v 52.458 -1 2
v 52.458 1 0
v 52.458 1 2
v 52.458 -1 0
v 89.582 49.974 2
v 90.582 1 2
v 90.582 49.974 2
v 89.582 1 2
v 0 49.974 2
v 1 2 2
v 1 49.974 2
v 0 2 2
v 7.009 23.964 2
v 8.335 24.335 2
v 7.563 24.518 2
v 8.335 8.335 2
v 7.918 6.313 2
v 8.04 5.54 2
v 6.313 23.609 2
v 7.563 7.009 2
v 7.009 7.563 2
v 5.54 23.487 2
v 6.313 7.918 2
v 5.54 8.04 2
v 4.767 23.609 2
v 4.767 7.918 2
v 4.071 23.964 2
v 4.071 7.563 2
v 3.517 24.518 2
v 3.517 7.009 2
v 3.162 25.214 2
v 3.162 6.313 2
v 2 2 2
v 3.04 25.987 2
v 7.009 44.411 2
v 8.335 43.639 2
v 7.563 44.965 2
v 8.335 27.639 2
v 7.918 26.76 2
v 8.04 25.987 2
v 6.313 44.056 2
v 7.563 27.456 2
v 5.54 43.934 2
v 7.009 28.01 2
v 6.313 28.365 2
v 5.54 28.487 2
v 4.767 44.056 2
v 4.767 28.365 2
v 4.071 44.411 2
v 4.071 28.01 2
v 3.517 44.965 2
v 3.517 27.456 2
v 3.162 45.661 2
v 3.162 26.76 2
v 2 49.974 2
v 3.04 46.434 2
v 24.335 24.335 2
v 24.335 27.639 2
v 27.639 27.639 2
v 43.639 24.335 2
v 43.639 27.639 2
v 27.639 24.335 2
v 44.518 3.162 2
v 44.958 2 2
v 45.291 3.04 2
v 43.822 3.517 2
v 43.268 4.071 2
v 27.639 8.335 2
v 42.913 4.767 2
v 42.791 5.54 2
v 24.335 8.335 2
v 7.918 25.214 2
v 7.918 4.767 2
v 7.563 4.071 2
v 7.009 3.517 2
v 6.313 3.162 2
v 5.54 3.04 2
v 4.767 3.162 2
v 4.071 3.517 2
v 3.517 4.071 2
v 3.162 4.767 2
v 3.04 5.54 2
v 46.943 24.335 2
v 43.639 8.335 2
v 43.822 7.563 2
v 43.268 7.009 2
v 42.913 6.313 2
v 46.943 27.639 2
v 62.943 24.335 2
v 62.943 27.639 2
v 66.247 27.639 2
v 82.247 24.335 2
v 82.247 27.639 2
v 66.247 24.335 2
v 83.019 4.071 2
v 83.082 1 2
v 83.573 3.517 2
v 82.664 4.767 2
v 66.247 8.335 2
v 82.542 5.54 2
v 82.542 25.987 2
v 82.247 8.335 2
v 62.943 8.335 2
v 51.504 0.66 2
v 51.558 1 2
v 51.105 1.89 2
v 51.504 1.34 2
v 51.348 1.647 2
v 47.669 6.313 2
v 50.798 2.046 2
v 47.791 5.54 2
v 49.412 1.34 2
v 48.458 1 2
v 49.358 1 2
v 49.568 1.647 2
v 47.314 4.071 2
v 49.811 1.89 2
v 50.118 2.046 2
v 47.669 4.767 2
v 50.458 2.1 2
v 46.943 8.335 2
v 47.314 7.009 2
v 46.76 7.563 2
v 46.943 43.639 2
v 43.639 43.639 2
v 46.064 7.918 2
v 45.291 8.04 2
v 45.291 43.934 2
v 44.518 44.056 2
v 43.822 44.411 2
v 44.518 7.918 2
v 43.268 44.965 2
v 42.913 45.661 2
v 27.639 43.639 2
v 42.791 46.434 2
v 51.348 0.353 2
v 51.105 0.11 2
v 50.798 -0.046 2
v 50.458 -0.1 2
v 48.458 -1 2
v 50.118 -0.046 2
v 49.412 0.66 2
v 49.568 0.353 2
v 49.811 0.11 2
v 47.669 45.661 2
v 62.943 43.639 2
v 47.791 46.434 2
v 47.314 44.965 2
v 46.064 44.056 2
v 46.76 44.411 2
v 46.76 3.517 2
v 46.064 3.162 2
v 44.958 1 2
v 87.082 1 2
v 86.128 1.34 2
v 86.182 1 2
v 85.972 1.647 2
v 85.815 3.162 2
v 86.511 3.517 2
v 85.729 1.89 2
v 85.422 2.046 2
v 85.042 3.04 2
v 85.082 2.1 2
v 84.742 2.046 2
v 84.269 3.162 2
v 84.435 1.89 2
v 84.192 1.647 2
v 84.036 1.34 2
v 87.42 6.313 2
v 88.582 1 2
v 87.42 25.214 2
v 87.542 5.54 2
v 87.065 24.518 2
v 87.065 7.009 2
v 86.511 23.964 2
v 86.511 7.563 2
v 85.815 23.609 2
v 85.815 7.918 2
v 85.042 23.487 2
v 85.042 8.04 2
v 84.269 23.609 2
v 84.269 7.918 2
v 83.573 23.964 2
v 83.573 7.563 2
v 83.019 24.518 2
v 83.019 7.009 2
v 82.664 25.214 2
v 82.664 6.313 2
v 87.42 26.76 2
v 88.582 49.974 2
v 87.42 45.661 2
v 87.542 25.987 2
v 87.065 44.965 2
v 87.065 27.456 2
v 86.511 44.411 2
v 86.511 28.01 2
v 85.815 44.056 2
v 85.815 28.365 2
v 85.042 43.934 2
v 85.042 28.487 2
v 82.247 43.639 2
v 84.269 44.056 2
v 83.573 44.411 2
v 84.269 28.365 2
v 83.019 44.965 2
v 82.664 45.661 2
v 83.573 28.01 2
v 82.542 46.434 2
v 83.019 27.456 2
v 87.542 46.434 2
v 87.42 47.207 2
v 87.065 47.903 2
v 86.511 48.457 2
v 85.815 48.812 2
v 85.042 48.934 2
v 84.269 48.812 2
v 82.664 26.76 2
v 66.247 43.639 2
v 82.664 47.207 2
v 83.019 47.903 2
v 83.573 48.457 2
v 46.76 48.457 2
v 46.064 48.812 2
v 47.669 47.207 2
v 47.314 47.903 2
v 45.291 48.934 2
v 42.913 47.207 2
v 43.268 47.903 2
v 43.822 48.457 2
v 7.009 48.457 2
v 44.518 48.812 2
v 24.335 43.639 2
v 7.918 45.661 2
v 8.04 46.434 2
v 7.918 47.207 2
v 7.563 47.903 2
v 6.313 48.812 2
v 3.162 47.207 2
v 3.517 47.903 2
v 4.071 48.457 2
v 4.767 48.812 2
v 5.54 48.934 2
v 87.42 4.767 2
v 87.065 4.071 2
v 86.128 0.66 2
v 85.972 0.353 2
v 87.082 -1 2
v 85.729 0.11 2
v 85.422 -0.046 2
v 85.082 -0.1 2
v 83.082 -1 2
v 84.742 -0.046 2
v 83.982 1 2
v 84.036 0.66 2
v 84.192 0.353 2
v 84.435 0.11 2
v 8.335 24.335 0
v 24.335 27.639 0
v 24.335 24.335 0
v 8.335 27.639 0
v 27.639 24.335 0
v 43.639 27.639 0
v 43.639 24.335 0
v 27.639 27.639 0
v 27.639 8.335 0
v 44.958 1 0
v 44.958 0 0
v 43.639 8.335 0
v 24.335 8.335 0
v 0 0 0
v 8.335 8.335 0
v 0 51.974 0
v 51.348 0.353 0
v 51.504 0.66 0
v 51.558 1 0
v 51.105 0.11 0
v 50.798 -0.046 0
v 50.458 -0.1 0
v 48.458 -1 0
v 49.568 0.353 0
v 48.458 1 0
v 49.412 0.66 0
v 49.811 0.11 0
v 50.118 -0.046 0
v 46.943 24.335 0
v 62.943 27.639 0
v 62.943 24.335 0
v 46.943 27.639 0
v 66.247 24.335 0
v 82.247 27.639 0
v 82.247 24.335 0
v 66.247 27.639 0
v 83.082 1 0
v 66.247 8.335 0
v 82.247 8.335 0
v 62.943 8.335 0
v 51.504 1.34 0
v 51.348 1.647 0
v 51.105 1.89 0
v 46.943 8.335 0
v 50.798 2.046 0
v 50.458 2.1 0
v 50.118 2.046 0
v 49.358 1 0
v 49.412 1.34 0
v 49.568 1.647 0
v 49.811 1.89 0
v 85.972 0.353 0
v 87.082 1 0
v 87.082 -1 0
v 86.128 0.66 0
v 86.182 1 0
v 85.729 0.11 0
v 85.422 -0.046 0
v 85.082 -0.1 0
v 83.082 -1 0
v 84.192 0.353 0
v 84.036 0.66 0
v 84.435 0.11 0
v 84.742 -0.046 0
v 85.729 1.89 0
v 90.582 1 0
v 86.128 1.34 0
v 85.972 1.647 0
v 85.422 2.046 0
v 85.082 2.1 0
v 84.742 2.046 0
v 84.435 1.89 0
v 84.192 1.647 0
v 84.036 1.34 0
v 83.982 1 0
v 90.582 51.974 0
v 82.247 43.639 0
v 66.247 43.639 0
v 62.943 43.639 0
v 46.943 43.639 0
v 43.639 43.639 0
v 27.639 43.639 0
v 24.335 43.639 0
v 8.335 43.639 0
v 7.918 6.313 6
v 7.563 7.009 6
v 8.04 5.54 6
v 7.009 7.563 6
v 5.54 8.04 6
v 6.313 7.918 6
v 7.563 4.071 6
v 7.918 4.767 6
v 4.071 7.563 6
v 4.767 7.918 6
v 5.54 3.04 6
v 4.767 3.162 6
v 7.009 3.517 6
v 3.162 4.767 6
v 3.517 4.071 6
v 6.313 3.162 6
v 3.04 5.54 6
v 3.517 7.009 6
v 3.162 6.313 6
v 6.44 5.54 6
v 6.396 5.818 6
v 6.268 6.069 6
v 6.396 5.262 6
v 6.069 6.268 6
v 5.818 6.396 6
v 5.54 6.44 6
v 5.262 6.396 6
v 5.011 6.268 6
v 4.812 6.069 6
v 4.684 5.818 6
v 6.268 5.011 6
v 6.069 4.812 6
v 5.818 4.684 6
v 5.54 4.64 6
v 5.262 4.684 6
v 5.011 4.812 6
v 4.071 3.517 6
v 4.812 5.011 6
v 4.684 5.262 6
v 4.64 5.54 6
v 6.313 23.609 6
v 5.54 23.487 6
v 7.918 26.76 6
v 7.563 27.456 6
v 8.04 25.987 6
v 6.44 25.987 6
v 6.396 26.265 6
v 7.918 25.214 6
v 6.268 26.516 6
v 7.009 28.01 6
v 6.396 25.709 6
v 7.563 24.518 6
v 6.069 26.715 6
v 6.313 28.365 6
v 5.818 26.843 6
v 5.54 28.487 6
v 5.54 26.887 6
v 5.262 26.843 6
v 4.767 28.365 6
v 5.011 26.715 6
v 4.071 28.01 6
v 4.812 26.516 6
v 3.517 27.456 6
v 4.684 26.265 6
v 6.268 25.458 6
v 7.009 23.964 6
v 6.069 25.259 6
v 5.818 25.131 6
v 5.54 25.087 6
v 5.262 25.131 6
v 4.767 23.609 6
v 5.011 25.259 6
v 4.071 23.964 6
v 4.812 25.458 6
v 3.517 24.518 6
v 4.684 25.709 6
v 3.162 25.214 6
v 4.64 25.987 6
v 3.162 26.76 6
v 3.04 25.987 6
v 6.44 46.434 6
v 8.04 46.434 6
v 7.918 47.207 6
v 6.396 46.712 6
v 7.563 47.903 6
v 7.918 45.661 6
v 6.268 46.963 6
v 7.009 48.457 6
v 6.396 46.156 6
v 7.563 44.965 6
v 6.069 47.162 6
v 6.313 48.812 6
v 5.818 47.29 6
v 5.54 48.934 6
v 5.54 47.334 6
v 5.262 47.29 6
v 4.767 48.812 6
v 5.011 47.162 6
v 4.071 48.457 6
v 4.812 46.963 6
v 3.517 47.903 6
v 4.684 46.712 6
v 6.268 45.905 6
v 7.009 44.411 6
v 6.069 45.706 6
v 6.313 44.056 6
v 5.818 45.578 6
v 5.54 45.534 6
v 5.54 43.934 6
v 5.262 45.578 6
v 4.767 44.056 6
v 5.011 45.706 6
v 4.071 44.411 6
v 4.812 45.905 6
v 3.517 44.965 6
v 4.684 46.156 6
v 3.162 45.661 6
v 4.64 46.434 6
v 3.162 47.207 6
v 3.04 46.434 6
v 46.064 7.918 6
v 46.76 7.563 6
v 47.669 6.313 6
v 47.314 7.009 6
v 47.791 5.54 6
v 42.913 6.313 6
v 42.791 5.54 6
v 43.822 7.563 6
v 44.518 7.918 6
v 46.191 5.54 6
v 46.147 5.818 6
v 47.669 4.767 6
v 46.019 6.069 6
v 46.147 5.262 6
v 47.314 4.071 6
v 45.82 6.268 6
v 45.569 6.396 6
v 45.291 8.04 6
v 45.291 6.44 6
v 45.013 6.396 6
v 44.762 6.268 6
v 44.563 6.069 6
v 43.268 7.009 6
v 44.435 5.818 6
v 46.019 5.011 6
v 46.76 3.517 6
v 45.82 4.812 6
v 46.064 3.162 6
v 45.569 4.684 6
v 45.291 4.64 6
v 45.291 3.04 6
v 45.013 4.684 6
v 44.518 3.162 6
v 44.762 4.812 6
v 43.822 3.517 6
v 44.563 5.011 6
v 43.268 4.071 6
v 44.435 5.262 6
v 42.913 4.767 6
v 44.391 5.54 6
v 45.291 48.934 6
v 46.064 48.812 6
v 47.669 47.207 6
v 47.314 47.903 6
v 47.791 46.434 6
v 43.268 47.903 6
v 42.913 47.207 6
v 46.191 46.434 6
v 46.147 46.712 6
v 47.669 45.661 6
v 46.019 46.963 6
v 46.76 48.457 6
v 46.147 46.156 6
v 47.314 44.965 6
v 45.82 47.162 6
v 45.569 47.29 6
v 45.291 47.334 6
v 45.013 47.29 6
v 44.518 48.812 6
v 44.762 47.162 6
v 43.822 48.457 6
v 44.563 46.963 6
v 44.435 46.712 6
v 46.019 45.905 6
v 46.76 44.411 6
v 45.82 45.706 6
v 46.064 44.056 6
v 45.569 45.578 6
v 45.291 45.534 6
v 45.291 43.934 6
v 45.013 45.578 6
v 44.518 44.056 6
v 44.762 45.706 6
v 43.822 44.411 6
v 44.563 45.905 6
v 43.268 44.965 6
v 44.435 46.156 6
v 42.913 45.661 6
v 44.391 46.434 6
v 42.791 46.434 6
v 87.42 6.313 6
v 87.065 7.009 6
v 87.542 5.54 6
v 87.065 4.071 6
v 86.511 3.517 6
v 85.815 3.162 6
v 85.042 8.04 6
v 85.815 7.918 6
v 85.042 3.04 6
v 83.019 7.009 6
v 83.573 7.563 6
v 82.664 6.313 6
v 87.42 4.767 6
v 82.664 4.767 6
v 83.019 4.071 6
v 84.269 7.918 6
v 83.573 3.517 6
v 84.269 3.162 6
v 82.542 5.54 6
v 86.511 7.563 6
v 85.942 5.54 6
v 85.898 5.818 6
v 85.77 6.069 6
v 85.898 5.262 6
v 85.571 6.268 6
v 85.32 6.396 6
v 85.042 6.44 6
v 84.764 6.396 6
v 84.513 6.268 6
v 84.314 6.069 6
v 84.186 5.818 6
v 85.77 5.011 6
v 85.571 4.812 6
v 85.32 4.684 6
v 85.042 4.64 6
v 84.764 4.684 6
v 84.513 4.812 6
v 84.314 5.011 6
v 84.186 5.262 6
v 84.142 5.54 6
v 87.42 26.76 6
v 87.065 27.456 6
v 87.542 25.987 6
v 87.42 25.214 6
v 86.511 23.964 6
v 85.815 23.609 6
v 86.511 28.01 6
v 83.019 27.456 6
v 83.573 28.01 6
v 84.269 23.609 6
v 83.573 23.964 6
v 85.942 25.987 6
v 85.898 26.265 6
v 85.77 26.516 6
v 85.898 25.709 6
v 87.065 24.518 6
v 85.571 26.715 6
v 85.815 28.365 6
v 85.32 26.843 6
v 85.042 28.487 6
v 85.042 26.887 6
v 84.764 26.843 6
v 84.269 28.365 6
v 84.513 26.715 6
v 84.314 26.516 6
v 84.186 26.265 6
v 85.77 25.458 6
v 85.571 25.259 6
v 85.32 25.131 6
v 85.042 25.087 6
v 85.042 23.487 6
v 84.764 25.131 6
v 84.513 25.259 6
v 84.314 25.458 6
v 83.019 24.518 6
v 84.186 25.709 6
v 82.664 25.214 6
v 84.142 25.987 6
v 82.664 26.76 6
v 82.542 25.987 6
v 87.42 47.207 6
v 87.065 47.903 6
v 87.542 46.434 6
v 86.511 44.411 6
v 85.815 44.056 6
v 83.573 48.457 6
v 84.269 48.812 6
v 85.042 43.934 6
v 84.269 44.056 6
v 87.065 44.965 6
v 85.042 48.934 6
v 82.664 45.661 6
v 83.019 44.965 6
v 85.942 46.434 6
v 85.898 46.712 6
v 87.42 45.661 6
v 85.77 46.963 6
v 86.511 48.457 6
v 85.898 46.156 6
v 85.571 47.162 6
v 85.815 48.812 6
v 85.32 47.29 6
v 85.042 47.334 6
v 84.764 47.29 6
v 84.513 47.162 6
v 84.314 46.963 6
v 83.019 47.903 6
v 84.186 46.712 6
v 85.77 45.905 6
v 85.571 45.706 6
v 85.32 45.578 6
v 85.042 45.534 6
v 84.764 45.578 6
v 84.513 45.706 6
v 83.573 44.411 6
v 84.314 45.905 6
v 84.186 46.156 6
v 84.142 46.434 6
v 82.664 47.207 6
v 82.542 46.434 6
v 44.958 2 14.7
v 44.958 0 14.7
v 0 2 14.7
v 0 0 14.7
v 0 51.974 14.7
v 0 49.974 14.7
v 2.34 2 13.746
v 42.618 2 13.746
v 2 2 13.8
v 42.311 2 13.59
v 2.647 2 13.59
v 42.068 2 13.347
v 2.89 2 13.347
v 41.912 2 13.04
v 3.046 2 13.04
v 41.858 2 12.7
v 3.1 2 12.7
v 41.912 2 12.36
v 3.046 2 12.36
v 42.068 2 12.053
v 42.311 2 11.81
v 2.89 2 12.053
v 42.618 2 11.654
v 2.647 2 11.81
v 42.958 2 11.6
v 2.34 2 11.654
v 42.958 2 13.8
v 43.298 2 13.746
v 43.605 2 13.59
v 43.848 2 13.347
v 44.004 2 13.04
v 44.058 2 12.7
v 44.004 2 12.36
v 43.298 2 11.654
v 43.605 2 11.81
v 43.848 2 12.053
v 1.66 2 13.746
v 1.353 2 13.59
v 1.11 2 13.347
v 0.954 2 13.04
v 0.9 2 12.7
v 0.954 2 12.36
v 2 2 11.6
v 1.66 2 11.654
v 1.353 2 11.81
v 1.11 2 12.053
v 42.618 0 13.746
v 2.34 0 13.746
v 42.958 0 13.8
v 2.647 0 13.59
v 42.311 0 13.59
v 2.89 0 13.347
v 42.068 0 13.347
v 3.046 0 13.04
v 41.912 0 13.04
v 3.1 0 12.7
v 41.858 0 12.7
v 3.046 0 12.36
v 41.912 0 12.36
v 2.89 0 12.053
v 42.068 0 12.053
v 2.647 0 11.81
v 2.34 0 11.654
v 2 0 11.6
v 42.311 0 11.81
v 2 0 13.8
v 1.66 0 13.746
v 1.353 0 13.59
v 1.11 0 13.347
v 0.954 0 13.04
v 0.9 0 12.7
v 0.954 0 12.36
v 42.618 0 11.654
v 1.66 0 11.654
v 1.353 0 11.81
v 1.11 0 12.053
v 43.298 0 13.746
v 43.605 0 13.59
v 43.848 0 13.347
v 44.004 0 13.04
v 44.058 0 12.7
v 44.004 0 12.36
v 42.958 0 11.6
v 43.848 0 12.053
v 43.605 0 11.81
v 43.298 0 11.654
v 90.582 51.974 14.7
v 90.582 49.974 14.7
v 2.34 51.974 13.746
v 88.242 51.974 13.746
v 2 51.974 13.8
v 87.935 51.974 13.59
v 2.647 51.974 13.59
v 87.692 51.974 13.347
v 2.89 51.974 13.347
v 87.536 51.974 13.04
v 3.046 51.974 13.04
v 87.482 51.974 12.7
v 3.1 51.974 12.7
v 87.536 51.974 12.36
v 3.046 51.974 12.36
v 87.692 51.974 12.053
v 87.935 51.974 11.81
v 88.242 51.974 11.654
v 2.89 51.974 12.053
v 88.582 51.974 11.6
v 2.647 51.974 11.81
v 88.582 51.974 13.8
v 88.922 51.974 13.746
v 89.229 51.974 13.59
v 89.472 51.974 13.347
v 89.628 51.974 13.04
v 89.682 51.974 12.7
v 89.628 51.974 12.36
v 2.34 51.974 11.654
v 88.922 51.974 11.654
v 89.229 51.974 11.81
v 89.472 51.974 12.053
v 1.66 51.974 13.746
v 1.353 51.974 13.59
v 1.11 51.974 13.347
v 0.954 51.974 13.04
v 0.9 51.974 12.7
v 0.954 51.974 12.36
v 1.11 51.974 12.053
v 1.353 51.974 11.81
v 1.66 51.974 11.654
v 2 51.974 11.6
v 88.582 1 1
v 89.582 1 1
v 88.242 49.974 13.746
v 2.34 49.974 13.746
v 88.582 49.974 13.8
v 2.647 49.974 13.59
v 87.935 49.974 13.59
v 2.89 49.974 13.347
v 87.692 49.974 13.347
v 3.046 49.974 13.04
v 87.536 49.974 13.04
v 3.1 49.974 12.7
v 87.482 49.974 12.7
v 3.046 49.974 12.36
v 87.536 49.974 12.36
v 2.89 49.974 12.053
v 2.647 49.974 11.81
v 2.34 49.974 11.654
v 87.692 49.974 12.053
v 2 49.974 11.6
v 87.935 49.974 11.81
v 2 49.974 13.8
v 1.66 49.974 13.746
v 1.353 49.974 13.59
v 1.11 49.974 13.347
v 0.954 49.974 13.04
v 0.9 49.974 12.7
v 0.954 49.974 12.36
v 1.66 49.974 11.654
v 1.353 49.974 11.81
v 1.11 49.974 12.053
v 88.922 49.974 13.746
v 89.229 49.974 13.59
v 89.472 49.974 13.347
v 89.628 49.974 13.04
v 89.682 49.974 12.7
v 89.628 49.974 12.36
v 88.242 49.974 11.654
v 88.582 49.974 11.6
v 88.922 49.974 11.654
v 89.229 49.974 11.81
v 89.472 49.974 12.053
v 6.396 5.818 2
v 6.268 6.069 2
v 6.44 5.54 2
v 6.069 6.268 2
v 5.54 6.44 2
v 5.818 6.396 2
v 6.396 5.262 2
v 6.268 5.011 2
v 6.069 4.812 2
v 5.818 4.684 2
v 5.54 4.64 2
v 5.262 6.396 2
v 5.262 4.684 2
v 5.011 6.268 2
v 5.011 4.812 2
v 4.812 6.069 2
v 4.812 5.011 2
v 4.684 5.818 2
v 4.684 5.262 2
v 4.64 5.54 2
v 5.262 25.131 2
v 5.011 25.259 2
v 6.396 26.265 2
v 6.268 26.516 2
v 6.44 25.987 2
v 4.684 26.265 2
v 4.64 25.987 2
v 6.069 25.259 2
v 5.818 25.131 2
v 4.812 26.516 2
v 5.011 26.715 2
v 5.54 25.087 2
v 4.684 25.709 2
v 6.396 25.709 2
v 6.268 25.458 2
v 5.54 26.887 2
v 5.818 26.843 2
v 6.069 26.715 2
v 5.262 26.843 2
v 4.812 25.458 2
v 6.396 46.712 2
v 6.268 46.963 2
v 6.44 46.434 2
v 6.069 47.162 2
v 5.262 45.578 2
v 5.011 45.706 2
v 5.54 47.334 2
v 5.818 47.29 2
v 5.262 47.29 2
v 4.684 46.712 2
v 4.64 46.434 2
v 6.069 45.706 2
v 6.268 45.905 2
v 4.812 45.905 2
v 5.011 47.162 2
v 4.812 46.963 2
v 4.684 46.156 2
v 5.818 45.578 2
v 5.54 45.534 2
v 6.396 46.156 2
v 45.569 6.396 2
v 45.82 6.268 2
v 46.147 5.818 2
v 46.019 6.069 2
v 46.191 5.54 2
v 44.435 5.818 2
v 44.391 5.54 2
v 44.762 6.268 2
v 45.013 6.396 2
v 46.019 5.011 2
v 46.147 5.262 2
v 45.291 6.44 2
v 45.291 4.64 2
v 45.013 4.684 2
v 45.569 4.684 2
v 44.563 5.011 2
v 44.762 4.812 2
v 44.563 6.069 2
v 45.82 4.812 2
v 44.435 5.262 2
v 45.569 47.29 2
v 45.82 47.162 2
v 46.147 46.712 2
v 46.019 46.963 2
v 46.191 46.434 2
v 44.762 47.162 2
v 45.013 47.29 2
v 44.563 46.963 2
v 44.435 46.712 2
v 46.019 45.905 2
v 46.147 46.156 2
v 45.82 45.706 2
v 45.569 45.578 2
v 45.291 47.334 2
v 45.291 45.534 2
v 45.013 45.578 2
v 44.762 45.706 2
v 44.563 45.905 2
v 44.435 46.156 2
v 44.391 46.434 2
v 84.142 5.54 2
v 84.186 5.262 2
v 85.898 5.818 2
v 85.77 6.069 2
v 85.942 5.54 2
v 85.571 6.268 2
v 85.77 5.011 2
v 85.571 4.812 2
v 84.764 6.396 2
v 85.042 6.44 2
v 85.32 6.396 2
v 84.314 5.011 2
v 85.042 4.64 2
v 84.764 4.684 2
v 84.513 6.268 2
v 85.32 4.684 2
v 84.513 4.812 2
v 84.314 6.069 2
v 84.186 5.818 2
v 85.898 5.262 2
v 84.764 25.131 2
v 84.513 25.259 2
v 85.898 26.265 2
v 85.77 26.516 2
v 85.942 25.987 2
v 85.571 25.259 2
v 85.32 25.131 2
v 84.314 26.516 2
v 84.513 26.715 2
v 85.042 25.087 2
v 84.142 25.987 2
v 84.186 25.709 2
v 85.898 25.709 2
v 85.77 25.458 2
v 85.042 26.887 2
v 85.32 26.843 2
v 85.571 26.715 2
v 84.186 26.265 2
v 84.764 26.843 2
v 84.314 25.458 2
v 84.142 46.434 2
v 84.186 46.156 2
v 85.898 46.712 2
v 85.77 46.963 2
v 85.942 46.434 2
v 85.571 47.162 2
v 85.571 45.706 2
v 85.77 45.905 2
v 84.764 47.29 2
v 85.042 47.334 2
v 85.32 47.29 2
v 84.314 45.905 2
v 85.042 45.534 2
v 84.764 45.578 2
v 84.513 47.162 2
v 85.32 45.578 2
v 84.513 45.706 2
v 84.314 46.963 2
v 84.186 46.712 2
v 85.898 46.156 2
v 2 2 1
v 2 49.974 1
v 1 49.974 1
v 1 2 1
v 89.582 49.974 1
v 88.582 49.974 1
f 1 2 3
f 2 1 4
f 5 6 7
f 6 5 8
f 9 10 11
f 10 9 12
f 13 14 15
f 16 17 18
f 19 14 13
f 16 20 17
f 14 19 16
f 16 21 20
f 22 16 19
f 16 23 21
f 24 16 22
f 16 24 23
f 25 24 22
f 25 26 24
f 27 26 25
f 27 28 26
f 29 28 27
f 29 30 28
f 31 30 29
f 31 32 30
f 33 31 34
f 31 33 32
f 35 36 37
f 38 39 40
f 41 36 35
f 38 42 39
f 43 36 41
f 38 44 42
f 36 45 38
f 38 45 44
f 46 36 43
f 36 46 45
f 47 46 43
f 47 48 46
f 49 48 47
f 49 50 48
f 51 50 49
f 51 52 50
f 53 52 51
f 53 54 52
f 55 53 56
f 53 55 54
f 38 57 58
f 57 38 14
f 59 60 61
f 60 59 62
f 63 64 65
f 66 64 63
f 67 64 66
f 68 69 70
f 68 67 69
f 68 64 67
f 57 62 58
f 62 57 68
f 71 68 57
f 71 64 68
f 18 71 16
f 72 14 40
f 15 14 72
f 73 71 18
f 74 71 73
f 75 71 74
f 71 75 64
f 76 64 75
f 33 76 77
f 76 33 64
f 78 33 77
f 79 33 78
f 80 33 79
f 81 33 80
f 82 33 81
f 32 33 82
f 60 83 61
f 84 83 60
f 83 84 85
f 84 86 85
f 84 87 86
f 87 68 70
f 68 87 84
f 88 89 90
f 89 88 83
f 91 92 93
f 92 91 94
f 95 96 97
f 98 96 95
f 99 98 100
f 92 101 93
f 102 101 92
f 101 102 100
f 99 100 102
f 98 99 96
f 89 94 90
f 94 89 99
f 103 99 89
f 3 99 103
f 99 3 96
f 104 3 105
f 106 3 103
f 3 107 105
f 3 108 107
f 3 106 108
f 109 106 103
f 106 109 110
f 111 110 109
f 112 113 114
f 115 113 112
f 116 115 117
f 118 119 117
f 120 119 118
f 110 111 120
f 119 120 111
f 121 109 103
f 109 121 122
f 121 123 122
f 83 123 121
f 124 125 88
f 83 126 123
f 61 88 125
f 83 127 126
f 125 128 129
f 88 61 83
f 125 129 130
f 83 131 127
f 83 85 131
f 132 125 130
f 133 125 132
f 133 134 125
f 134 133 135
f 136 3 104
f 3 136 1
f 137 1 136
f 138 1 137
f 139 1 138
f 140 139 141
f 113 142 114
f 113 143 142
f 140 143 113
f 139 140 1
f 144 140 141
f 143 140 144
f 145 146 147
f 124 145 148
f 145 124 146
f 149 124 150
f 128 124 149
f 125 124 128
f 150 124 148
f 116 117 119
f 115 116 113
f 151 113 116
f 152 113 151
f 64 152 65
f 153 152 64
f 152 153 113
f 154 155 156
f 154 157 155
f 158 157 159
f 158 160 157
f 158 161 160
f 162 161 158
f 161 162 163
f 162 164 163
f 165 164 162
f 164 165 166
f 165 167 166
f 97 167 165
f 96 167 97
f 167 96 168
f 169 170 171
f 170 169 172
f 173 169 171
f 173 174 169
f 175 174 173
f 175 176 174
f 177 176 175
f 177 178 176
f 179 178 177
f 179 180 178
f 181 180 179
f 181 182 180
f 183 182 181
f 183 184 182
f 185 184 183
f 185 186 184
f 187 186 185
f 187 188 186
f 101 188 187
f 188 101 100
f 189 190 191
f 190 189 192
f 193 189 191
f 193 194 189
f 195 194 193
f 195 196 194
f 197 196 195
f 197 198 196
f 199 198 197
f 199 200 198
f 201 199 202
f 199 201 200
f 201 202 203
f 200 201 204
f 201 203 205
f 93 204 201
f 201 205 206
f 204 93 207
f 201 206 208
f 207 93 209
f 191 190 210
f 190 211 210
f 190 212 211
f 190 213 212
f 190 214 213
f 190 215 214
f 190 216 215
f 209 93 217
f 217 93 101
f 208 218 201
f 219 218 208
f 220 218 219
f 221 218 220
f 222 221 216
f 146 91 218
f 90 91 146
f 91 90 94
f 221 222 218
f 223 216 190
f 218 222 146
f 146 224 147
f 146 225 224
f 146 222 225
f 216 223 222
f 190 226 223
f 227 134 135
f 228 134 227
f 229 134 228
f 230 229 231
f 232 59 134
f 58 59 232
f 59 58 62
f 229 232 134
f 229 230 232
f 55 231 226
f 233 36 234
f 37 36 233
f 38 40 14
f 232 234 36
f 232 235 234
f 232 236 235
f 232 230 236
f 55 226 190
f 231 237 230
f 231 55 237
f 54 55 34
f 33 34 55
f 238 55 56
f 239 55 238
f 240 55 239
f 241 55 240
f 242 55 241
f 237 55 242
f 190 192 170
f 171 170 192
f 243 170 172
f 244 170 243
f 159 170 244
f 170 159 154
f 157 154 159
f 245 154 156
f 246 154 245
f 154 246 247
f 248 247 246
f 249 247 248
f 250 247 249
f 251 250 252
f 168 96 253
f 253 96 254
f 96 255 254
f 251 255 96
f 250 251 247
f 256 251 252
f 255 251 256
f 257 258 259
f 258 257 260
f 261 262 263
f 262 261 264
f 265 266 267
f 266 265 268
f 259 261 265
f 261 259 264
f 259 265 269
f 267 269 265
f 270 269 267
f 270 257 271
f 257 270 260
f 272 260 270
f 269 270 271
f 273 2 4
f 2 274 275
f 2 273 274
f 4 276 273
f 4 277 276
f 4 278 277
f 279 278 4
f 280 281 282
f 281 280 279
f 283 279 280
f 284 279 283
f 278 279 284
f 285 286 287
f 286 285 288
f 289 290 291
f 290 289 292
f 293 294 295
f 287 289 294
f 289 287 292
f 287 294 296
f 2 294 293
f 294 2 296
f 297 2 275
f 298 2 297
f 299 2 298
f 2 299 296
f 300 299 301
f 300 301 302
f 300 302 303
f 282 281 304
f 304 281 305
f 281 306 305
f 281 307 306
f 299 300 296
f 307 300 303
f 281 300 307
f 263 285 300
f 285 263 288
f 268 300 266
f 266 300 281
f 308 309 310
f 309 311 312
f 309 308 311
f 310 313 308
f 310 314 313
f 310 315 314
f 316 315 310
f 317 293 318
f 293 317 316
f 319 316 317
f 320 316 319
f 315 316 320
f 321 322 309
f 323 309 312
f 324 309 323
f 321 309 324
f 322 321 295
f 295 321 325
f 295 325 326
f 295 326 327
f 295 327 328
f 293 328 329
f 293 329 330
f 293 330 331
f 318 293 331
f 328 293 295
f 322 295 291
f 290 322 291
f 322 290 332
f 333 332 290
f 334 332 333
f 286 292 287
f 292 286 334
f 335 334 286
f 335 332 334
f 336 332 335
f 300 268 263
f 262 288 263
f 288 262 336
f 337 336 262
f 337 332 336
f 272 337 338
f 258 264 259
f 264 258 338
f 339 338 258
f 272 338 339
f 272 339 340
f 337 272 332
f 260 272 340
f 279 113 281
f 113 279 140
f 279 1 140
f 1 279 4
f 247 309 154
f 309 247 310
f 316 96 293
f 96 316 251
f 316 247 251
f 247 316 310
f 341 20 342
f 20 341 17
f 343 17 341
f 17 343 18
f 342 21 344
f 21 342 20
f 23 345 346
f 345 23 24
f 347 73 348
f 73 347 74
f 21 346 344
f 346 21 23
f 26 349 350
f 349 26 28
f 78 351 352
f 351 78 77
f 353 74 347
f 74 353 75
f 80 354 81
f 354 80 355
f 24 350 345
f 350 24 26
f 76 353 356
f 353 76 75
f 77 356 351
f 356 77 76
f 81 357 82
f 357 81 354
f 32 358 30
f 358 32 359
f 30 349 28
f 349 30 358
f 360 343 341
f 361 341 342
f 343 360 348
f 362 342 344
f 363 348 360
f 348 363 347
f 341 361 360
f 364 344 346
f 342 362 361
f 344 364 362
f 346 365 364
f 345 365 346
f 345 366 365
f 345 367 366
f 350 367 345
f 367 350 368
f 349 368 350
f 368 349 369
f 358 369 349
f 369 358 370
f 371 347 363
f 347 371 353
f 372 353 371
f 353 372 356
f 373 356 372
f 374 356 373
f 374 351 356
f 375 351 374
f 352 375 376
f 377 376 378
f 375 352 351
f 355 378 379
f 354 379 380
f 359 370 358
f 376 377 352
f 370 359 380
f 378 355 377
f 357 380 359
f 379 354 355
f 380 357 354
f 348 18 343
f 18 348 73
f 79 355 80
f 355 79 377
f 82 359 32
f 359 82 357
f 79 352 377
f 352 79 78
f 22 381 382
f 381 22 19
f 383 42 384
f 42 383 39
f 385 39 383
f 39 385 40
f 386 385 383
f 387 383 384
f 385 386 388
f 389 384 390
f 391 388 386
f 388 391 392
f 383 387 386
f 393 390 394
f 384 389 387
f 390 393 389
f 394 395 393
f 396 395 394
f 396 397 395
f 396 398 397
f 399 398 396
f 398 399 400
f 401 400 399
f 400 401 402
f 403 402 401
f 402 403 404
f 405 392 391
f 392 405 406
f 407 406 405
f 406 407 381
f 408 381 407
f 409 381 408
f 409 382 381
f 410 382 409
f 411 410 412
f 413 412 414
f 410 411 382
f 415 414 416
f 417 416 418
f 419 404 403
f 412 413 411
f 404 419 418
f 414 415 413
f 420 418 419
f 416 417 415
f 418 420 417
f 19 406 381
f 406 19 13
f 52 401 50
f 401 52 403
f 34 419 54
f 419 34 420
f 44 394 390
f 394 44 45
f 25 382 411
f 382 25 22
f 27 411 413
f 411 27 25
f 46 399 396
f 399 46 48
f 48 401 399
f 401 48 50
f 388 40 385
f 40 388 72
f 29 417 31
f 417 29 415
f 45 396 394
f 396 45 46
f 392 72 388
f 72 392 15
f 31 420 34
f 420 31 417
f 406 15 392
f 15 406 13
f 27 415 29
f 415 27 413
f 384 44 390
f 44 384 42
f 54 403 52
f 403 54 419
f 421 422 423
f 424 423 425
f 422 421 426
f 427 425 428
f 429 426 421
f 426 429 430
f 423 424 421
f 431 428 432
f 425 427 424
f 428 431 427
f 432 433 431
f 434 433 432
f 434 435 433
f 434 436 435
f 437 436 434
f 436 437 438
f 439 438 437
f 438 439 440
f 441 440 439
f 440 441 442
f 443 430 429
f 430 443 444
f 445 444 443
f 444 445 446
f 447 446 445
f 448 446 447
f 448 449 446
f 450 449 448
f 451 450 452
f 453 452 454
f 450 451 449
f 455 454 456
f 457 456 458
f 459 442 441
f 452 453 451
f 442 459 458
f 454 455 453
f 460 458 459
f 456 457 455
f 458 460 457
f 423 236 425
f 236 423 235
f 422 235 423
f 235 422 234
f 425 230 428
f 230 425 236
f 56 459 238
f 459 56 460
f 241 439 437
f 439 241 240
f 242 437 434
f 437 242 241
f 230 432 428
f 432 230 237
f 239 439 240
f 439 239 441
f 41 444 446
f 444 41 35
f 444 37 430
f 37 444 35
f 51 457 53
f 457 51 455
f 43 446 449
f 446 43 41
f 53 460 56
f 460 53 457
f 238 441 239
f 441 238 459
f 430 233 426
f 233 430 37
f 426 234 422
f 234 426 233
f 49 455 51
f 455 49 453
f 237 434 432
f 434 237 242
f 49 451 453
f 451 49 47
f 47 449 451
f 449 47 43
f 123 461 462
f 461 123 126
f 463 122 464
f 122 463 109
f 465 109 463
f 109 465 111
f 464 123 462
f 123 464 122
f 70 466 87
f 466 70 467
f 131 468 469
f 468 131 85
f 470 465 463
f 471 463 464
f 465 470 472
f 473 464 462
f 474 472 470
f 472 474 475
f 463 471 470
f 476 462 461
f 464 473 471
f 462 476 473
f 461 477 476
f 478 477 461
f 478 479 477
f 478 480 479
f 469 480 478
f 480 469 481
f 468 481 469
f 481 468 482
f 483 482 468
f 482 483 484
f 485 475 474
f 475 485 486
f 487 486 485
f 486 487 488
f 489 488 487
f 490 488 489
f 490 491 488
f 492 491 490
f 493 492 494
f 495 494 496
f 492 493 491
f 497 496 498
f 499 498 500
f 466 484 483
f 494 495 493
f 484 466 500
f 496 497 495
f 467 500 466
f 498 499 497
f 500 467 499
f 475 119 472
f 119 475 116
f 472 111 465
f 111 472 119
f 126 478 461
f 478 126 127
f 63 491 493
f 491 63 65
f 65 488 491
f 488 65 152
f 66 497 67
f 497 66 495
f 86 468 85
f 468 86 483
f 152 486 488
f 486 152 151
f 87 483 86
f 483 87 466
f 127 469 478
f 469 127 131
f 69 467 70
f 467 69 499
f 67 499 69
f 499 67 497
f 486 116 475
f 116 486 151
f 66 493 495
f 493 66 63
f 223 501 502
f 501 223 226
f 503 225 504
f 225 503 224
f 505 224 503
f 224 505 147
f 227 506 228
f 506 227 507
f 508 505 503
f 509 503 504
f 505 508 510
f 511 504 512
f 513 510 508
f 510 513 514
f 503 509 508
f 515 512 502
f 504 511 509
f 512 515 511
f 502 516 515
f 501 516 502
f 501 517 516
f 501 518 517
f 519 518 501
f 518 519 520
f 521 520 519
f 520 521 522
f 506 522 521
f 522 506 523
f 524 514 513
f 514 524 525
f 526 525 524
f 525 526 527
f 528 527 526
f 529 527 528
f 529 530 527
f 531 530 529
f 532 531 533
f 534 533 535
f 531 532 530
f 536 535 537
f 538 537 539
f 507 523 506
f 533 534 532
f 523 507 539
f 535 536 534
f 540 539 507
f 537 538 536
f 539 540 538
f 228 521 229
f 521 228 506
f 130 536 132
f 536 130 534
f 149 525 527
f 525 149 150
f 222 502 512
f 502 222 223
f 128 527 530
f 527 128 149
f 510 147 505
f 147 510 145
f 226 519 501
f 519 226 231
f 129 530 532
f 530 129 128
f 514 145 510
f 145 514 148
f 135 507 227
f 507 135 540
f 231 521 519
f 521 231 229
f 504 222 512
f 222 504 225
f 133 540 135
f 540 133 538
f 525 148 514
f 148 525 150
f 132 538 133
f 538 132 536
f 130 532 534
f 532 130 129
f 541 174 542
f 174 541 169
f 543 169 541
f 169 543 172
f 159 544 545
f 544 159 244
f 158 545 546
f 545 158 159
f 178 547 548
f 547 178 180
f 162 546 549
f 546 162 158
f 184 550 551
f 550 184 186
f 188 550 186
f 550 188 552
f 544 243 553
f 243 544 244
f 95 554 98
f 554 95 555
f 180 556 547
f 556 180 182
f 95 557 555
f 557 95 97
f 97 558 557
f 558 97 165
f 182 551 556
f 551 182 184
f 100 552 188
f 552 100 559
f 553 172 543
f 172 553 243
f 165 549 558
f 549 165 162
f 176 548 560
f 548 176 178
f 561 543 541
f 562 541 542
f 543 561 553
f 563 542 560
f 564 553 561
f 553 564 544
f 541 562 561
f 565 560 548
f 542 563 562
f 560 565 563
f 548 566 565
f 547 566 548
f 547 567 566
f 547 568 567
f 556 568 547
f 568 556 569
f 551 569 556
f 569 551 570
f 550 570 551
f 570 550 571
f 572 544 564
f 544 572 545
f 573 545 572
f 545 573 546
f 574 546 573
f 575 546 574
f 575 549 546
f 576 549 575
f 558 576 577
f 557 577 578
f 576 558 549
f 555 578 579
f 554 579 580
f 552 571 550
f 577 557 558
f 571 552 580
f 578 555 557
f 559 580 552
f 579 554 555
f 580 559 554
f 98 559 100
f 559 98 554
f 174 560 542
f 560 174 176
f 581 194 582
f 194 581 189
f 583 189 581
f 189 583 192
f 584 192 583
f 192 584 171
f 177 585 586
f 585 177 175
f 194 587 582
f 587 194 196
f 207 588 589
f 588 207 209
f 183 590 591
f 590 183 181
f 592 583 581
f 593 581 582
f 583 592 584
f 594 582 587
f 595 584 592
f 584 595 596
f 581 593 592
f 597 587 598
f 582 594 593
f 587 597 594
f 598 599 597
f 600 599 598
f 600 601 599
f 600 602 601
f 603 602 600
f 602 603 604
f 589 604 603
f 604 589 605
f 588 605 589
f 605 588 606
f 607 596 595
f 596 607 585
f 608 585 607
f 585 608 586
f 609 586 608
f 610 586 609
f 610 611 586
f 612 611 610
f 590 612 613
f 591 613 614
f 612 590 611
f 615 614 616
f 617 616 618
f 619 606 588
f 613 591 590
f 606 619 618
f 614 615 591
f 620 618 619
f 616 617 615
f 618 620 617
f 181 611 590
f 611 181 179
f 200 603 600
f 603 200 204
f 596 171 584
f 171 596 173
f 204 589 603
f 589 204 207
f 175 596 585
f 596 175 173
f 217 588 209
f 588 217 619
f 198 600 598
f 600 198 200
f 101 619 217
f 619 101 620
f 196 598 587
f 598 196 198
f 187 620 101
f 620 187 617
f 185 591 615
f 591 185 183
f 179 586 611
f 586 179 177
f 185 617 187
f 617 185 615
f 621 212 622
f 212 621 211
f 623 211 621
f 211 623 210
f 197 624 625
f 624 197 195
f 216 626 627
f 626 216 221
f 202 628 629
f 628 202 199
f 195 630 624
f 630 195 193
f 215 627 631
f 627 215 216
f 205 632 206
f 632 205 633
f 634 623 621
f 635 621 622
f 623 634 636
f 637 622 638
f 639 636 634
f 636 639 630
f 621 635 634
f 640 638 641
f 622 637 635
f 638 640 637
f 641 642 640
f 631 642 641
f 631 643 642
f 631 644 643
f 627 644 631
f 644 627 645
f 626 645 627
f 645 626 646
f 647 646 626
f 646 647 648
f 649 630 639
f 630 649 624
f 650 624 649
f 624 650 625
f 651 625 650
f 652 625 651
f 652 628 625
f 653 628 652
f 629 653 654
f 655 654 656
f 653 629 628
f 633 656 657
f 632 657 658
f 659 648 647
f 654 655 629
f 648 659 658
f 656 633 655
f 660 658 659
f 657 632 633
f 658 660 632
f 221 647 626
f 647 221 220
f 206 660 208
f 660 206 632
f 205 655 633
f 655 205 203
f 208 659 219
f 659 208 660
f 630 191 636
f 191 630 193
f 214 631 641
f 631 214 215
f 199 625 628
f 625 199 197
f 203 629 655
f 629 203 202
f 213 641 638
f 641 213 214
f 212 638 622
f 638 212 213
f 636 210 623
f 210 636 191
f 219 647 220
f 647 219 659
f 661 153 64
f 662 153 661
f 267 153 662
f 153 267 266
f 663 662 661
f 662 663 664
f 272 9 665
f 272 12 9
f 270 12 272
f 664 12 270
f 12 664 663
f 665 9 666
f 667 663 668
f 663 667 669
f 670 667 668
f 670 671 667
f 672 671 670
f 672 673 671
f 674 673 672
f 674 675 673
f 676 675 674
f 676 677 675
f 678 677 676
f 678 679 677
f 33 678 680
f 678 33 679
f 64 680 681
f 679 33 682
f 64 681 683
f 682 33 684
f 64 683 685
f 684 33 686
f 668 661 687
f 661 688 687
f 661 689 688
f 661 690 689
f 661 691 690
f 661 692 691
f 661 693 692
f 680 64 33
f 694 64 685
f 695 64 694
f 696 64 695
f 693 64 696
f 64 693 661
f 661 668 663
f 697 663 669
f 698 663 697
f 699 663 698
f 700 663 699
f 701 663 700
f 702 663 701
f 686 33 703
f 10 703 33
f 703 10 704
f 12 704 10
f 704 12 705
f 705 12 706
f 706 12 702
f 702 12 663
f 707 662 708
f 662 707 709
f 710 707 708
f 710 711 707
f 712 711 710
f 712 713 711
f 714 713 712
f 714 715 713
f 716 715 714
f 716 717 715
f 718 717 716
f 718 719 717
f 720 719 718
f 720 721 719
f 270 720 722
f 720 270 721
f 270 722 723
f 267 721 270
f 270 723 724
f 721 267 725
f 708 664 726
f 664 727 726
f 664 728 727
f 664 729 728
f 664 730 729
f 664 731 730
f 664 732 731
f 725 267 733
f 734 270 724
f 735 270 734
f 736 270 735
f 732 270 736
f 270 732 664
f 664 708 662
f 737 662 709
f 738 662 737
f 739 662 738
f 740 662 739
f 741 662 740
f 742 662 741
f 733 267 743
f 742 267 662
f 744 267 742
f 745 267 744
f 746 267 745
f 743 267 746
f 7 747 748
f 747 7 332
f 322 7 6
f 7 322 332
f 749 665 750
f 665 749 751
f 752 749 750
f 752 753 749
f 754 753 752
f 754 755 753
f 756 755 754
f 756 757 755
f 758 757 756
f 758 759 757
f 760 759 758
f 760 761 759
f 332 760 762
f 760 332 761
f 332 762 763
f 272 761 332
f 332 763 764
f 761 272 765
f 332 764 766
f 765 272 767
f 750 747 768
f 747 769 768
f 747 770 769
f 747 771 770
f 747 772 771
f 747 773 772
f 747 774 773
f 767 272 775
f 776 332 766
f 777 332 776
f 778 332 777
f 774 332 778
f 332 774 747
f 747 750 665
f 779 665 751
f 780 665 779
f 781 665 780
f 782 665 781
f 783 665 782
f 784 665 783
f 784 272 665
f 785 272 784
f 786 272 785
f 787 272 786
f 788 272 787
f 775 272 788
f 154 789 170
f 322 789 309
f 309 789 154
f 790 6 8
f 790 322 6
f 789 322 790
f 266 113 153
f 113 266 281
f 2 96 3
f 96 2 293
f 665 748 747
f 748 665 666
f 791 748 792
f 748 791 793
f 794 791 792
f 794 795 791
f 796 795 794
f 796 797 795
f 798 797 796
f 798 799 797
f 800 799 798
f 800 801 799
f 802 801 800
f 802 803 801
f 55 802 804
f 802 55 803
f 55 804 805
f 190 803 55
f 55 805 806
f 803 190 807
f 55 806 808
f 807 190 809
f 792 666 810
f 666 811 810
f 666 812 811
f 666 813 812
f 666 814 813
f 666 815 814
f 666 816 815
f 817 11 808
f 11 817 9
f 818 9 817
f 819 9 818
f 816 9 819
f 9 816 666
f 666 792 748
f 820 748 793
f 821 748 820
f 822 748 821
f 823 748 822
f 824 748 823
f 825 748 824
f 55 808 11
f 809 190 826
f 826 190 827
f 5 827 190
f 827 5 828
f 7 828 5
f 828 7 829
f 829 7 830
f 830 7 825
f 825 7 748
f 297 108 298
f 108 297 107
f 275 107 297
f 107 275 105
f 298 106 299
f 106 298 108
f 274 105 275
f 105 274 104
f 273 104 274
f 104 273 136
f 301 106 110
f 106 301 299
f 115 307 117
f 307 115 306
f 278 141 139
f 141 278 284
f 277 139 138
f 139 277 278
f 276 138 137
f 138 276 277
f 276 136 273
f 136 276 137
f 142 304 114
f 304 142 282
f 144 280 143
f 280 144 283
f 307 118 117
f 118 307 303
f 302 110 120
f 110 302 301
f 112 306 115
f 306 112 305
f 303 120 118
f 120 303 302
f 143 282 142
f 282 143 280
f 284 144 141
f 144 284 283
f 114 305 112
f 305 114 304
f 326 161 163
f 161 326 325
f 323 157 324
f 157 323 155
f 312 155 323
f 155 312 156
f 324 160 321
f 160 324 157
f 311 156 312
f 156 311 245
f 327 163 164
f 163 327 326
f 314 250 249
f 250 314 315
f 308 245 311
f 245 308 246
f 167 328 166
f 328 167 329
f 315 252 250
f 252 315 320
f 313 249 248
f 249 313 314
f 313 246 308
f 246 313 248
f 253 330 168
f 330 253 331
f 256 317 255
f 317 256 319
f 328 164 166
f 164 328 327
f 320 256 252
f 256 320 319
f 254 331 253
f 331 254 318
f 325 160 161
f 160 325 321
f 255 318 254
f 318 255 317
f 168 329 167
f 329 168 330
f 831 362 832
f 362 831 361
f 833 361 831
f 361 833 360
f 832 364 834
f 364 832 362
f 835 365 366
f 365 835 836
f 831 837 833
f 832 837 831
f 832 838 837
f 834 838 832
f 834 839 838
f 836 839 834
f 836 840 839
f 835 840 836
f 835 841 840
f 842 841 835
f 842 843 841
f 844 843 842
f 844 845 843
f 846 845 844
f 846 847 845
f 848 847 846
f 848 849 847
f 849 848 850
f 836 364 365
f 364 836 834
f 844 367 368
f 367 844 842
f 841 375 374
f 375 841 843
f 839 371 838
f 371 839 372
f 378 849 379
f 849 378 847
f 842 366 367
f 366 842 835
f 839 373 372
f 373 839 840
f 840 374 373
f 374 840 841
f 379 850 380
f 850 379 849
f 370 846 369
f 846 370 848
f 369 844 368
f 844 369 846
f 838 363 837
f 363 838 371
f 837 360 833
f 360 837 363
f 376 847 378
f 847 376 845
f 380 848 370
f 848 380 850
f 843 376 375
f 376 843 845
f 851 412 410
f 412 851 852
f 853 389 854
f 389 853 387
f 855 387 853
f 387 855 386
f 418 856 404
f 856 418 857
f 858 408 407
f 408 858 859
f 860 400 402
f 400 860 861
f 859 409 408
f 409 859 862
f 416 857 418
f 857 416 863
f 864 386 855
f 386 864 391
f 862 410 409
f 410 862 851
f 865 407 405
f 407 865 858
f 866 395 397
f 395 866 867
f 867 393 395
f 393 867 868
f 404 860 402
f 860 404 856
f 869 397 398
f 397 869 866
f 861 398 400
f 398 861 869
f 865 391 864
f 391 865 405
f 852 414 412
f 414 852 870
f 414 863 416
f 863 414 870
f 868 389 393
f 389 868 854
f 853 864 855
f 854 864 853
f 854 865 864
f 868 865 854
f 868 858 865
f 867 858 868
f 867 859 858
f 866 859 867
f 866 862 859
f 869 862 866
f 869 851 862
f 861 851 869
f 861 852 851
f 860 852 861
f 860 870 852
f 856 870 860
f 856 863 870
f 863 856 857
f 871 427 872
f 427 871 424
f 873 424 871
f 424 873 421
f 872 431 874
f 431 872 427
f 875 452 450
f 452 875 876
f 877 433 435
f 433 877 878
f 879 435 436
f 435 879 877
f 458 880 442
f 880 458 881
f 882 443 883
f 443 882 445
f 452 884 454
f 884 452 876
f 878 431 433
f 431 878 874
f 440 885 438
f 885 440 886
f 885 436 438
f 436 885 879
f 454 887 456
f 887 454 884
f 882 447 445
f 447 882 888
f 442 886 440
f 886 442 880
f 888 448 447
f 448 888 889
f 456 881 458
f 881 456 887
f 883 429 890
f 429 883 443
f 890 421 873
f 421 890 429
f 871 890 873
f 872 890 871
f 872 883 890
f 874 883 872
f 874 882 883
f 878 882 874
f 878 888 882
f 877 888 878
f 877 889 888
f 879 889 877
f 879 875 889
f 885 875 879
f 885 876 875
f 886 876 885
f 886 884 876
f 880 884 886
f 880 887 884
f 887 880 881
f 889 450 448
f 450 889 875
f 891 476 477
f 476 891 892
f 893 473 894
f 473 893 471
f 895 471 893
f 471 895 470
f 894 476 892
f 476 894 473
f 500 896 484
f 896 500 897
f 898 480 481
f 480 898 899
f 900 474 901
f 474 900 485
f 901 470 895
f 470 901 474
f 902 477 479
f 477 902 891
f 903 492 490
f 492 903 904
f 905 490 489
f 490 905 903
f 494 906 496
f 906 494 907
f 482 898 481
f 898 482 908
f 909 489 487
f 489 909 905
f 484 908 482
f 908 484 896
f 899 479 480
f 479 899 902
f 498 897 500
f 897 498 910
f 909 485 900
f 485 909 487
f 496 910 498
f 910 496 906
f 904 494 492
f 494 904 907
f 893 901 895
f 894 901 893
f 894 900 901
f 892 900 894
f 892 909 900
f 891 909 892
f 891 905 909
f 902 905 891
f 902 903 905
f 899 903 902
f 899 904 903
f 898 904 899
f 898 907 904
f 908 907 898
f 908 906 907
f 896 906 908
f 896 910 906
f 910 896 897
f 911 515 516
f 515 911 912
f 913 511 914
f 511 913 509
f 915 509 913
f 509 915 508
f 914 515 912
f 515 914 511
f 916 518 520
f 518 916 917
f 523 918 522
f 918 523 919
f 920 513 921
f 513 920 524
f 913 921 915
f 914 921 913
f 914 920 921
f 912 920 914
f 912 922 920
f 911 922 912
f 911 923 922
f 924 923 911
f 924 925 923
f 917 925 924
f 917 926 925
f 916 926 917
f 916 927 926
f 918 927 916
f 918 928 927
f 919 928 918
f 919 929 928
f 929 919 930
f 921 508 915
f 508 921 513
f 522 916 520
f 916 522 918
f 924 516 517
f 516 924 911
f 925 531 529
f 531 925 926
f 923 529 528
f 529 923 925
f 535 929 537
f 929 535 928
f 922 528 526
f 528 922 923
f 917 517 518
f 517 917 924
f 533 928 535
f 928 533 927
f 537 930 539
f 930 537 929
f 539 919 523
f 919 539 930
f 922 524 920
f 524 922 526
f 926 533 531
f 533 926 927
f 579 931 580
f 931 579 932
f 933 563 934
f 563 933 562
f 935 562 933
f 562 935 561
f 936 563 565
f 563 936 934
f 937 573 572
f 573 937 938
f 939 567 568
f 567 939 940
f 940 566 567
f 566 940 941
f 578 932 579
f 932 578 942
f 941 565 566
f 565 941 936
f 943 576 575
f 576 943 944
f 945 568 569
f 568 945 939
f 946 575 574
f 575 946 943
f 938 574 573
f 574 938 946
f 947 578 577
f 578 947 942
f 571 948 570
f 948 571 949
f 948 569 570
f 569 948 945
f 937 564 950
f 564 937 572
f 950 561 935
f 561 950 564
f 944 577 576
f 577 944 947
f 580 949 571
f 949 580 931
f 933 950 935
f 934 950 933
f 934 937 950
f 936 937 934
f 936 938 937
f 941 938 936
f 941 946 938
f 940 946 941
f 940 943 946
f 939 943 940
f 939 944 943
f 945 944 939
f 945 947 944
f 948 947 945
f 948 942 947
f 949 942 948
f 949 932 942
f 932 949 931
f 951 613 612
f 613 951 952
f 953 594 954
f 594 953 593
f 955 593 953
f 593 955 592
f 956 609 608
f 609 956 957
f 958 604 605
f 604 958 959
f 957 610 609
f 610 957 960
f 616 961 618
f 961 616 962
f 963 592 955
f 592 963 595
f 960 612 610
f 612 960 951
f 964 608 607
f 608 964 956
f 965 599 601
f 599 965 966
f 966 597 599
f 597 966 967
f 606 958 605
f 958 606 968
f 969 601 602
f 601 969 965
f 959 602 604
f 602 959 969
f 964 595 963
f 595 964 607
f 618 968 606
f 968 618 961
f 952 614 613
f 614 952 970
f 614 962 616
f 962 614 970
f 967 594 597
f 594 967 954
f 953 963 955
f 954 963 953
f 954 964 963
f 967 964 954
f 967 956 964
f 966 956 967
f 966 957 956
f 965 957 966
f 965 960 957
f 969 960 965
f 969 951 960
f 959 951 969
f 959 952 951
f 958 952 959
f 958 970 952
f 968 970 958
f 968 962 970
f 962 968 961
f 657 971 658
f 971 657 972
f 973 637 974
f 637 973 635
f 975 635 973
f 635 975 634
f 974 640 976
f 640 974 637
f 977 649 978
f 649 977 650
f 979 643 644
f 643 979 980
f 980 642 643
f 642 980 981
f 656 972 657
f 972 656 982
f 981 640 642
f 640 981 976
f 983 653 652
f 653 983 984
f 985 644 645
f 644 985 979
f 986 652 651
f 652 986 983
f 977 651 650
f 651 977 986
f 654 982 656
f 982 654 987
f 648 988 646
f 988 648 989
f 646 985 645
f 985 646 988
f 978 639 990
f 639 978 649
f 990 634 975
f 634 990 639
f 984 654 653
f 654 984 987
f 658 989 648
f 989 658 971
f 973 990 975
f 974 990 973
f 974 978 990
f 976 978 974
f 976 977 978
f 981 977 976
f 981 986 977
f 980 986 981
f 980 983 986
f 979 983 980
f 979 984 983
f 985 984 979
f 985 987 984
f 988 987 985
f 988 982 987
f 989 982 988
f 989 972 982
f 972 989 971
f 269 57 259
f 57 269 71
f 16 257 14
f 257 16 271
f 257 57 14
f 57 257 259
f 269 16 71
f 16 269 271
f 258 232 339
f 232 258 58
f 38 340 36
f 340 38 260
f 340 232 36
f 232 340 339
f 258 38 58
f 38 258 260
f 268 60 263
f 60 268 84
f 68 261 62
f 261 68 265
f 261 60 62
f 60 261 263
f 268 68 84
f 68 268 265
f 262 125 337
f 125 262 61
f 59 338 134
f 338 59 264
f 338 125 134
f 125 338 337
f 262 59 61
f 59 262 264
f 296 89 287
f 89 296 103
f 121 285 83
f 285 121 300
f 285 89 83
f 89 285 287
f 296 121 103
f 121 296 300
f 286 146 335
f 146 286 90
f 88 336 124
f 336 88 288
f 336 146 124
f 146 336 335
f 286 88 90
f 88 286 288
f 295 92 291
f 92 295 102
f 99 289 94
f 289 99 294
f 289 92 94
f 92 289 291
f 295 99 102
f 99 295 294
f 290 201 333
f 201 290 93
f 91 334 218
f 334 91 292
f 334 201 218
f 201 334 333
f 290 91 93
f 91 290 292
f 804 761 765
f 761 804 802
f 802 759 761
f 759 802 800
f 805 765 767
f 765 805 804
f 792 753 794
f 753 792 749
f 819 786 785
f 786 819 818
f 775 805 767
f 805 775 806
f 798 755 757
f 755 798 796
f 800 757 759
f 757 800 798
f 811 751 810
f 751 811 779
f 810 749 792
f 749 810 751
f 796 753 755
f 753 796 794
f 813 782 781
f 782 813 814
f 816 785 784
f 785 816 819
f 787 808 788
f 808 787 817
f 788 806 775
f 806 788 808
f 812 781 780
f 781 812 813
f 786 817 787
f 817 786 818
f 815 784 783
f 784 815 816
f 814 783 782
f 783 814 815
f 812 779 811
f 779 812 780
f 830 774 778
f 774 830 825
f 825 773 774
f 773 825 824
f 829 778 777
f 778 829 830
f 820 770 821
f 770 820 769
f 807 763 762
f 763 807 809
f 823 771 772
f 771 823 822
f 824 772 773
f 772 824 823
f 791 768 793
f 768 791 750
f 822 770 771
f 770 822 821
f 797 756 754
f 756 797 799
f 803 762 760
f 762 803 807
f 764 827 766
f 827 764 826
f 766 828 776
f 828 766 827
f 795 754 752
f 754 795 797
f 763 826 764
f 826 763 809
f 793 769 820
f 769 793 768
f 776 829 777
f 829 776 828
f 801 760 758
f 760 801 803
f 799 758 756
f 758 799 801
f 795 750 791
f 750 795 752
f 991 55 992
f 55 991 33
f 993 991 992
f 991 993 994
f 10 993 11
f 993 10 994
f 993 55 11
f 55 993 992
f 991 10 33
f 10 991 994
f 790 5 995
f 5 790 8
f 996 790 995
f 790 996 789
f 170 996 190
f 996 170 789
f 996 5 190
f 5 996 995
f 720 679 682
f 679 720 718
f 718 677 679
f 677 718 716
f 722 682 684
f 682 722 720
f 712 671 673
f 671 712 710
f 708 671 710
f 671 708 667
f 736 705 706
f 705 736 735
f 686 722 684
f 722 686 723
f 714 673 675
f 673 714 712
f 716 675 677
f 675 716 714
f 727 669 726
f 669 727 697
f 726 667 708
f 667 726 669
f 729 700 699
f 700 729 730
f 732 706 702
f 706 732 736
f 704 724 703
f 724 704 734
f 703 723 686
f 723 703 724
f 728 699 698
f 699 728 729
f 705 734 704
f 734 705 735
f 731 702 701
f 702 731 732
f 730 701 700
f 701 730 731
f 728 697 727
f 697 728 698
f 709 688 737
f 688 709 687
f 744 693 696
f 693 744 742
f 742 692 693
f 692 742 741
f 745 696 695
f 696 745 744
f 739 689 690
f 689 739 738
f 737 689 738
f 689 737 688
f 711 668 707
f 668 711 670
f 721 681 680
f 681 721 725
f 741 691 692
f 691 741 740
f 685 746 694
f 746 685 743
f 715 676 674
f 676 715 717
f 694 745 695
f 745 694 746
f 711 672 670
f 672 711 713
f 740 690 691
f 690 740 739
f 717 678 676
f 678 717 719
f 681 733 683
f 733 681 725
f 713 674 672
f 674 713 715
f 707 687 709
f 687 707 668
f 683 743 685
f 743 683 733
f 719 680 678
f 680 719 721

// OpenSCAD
// file: ../lib/ssd1306.scad
/*
 * SPDX-FileCopyrightText: 2022-2024 Rafael G. Martins <rafael@rafaelmartins.eng.br>
 * SPDX-License-Identifier: CERN-OHL-S-2.0
 */

ssd1306_pcb_thickness = 1.6;
ssd1306_pcb_base_height = 2;
ssd1306_pcb_base_d = 4;
ssd1306_pcb_base_screw_d = 1.8;
ssd1306_pcb_base_spacing_x = 23.5;
ssd1306_pcb_base_spacing_y = 23.8;
ssd1306_screen_width = 24.5;
ssd1306_screen_height = 13;
ssd1306_screen_distance_x = (ssd1306_pcb_base_spacing_x - ssd1306_screen_width) / 2;
ssd1306_screen_distance_y = 3.5;
ssd1306_pin_distance_y = 0.45;


module ssd1306_add(thickness) {
    translate([-ssd1306_pcb_base_d / 2, -ssd1306_pcb_base_d / 2, 0])
        cube([ssd1306_pcb_base_spacing_x + ssd1306_pcb_base_d,
              ssd1306_pcb_base_spacing_y + ssd1306_pcb_base_d,
              thickness]);

    for(i=[0:1])
        for(j=[0:1])
            translate([i * ssd1306_pcb_base_spacing_x, j * ssd1306_pcb_base_spacing_y, thickness])
                cylinder(ssd1306_pcb_base_height, d=ssd1306_pcb_base_d, $fn=20);
}


module ssd1306_sub(thickness) {
    translate([ssd1306_screen_distance_x, ssd1306_screen_distance_y, 0])
        cube([ssd1306_screen_width, ssd1306_screen_height, thickness]);

    for(i=[0:1])
        for(j=[0:1])
            translate([i * ssd1306_pcb_base_spacing_x, j * ssd1306_pcb_base_spacing_y, thickness])
                cylinder(ssd1306_pcb_base_height, d=ssd1306_pcb_base_screw_d, $fn=20);
}
// file: settings.scad
/*
 * SPDX-FileCopyrightText: 2024 Rafael G. Martins <rafael@rafaelmartins.eng.br>
 * SPDX-License-Identifier: CERN-OHL-S-2.0
 */

include <../lib/ssd1306.scad>

screw_d = 2;
screw_h = 8;
thickness = 2;
gap = 0;

front_screw_padding = 3.5;

pcb_base_d = 5;
pcb_base_screw_d = 1.8;
pcb_screw_padding = 2.54;
pcb_thickness = 1.6;

pcb_gap = 1;
pcb_padding_x = thickness + pcb_gap;
pcb_padding_y = thickness + pcb_gap;

display_pcb_length = 39.624;
display_pcb_width = 33.782;

display_pcb0_x = pcb_padding_x;
display_pcb0_y = pcb_padding_y;

display_length = display_pcb_length + 2 * pcb_padding_x;
display_width = display_pcb_width + pcb_padding_y;

switches_pcb_length = 84.582;
switches_pcb_width = 45.974;

switches_length = switches_pcb_length + 2 * pcb_padding_x;
switches_width = switches_pcb_width + 2 * pcb_padding_y;

switches_pcb_base_distance_x = 39.751;
switches_pcb_base_distance_y = 20.447;

oled_socket_height = 8.5;
oled_pin0_y = 5.334;
oled0_x = (display_length - ssd1306_pcb_base_spacing_x) / 2;
oled0_y = display_pcb0_y + oled_pin0_y + ssd1306_pin_distance_y;

display_pcb_base_distance = 34.544;
display_pcb_base_height = 2.8 + oled_socket_height + ssd1306_pcb_thickness + ssd1306_pcb_base_height;

switches_pcb_base_height = 6 - thickness;

usb_height = 4.4;
usb_width = 8.2;
usb_distance_x = pcb_padding_x + 29.210 - usb_width / 2;
usb_distance_z = thickness + display_pcb_base_height + pcb_thickness - 0.1;

display_height = usb_distance_z + usb_height + 0.8 + thickness;
display_height_in = display_pcb_base_height - switches_pcb_base_height - thickness;

switches_height = display_height - display_pcb_base_height + switches_pcb_base_height;

led0_x = 37.211;
led0_y = 15.24;
led_d = 3.2;

key_dim = 16;
key_distance = 19.304;
key0_x = 13.335 - key_dim / 2;
key0_y = key0_x;

base_screw_d = 1.8;
base_screw_h = 5;
base_screw_padding = 8;
base_screw_padding_bottom = 25;

base_length = switches_length;
base_width = display_width + switches_width - pcb_gap - thickness;
base_height = 16;

back_screw3_padding = 10;
// file: ../lib/screw-base.scad
// SPDX-FileCopyrightText: 2022-2024 Rafael G. Martins <rafael@rafaelmartins.eng.br>
// SPDX-License-Identifier: CERN-OHL-S-2.0

function screw_base_dim(screw_d) = screw_d + 2;
function screw_base_height(screw_h) = screw_h + 1;


module screw_base_add(screw_d, screw_h) {
    cube([screw_base_dim(screw_d), screw_base_dim(screw_d), screw_base_height(screw_h)]);
}


module screw_base_sub(screw_d, screw_h) {
    translate([screw_base_dim(screw_d) / 2, screw_base_dim(screw_d) / 2, 0])
        cylinder(screw_h, d=screw_d - 0.2, $fn=20);
}
// main file
/*
 * SPDX-FileCopyrightText: 2024 Rafael G. Martins <rafael@rafaelmartins.eng.br>
 * SPDX-License-Identifier: CERN-OHL-S-2.0
 */

include <../lib/screw-base.scad>
include <settings.scad>


difference() {
    union() {
        cube([switches_length - display_length, thickness, switches_height]);
        cube([switches_length - display_length, pcb_padding_y - thickness, thickness]);
        translate([0, pcb_padding_y - thickness, 0])
            cube([switches_length, switches_width - pcb_padding_y + thickness, thickness]);
        translate([0, switches_width - thickness, 0])
            cube([switches_length, thickness, switches_height]);

        translate([0, pcb_padding_y - screw_base_dim(screw_d), 0]) {
            translate([switches_length - display_length + front_screw_padding, 0, 0])
                cube([screw_base_dim(screw_d), screw_base_dim(screw_d), thickness]);
            translate([switches_length - front_screw_padding - screw_base_dim(screw_d), 0, 0])
                cube([screw_base_dim(screw_d), screw_base_dim(screw_d), thickness]);
        }

        translate([pcb_padding_x, pcb_padding_y, 0]) {
            translate([pcb_screw_padding, pcb_screw_padding, thickness])
                for (i=[0:2])
                    for (j=[0:2])
                        if (!(i == 1 && j == 1))
                            translate([i * switches_pcb_base_distance_x,
                                       j * switches_pcb_base_distance_y, 0])
                                cylinder(h=switches_pcb_base_height, d=pcb_base_d, $fn=20);
        }
    }

    translate([0, pcb_padding_y - screw_base_dim(screw_d), 0]) {
        translate([switches_length - display_length + front_screw_padding + screw_base_dim(screw_d) / 2,
                   screw_base_dim(screw_d) / 2, 0])
            cylinder(h=thickness, d=screw_d * 1.1, $fn=20);
        translate([switches_length - front_screw_padding - screw_base_dim(screw_d) / 2,
                   screw_base_dim(screw_d) / 2, 0])
            cylinder(h=thickness, d=screw_d * 1.1, $fn=20);
    }

    translate([pcb_padding_x, pcb_padding_y, 0]) {
        translate([pcb_screw_padding, pcb_screw_padding, thickness])
            for (i=[0:2])
                for (j=[0:2])
                    if (!(i == 1 && j == 1))
                        translate([i * switches_pcb_base_distance_x,
                                   j * switches_pcb_base_distance_y, 0])
                            cylinder(h=switches_pcb_base_height, d=pcb_base_screw_d, $fn=20);

         translate([key0_x, key0_y, 0])
             for (i=[0:3])
                 for (j=[0:1])
                     translate([i * key_distance, j * key_distance, 0])
                        cube([key_dim, key_dim, thickness]);
    }

    translate([(thickness - gap) / 2, thickness, thickness / 2])
        cube([thickness / 2 + gap, switches_width - 2 * thickness, thickness / 2]);
    translate([switches_length - thickness - gap / 2, pcb_padding_y - thickness, thickness / 2])
        cube([thickness / 2 + gap, switches_width - 2 * thickness + pcb_padding_y - thickness,
              thickness / 2]);

    translate([screw_base_dim(screw_d) / 2, 0, switches_height - screw_base_dim(screw_d) / 2])
        rotate([-90, 0, 0])
            cylinder(h=thickness, d=screw_d * 1.1, $fn=20);
    translate([(switches_length - display_length) - screw_base_dim(screw_d) / 2, 0,
               switches_height - screw_base_dim(screw_d) / 2])
        rotate([-90, 0, 0])
            cylinder(h=thickness, d=screw_d * 1.1, $fn=20);
    translate([0, switches_width - thickness - 0.1, 0]) {  // workaround
        translate([screw_base_dim(screw_d) / 2, 0, switches_height - screw_base_dim(screw_d) / 2])
            rotate([-90, 0, 0])
                cylinder(h=thickness + 0.2, d=screw_d * 1.1, $fn=20);  // workaround
        translate([switches_length - screw_base_dim(screw_d) / 2, 0,
                   switches_height - screw_base_dim(screw_d) / 2])
            rotate([-90, 0, 0])
                cylinder(h=thickness + 0.2, d=screw_d * 1.1, $fn=20);  // workaround
    }
}
